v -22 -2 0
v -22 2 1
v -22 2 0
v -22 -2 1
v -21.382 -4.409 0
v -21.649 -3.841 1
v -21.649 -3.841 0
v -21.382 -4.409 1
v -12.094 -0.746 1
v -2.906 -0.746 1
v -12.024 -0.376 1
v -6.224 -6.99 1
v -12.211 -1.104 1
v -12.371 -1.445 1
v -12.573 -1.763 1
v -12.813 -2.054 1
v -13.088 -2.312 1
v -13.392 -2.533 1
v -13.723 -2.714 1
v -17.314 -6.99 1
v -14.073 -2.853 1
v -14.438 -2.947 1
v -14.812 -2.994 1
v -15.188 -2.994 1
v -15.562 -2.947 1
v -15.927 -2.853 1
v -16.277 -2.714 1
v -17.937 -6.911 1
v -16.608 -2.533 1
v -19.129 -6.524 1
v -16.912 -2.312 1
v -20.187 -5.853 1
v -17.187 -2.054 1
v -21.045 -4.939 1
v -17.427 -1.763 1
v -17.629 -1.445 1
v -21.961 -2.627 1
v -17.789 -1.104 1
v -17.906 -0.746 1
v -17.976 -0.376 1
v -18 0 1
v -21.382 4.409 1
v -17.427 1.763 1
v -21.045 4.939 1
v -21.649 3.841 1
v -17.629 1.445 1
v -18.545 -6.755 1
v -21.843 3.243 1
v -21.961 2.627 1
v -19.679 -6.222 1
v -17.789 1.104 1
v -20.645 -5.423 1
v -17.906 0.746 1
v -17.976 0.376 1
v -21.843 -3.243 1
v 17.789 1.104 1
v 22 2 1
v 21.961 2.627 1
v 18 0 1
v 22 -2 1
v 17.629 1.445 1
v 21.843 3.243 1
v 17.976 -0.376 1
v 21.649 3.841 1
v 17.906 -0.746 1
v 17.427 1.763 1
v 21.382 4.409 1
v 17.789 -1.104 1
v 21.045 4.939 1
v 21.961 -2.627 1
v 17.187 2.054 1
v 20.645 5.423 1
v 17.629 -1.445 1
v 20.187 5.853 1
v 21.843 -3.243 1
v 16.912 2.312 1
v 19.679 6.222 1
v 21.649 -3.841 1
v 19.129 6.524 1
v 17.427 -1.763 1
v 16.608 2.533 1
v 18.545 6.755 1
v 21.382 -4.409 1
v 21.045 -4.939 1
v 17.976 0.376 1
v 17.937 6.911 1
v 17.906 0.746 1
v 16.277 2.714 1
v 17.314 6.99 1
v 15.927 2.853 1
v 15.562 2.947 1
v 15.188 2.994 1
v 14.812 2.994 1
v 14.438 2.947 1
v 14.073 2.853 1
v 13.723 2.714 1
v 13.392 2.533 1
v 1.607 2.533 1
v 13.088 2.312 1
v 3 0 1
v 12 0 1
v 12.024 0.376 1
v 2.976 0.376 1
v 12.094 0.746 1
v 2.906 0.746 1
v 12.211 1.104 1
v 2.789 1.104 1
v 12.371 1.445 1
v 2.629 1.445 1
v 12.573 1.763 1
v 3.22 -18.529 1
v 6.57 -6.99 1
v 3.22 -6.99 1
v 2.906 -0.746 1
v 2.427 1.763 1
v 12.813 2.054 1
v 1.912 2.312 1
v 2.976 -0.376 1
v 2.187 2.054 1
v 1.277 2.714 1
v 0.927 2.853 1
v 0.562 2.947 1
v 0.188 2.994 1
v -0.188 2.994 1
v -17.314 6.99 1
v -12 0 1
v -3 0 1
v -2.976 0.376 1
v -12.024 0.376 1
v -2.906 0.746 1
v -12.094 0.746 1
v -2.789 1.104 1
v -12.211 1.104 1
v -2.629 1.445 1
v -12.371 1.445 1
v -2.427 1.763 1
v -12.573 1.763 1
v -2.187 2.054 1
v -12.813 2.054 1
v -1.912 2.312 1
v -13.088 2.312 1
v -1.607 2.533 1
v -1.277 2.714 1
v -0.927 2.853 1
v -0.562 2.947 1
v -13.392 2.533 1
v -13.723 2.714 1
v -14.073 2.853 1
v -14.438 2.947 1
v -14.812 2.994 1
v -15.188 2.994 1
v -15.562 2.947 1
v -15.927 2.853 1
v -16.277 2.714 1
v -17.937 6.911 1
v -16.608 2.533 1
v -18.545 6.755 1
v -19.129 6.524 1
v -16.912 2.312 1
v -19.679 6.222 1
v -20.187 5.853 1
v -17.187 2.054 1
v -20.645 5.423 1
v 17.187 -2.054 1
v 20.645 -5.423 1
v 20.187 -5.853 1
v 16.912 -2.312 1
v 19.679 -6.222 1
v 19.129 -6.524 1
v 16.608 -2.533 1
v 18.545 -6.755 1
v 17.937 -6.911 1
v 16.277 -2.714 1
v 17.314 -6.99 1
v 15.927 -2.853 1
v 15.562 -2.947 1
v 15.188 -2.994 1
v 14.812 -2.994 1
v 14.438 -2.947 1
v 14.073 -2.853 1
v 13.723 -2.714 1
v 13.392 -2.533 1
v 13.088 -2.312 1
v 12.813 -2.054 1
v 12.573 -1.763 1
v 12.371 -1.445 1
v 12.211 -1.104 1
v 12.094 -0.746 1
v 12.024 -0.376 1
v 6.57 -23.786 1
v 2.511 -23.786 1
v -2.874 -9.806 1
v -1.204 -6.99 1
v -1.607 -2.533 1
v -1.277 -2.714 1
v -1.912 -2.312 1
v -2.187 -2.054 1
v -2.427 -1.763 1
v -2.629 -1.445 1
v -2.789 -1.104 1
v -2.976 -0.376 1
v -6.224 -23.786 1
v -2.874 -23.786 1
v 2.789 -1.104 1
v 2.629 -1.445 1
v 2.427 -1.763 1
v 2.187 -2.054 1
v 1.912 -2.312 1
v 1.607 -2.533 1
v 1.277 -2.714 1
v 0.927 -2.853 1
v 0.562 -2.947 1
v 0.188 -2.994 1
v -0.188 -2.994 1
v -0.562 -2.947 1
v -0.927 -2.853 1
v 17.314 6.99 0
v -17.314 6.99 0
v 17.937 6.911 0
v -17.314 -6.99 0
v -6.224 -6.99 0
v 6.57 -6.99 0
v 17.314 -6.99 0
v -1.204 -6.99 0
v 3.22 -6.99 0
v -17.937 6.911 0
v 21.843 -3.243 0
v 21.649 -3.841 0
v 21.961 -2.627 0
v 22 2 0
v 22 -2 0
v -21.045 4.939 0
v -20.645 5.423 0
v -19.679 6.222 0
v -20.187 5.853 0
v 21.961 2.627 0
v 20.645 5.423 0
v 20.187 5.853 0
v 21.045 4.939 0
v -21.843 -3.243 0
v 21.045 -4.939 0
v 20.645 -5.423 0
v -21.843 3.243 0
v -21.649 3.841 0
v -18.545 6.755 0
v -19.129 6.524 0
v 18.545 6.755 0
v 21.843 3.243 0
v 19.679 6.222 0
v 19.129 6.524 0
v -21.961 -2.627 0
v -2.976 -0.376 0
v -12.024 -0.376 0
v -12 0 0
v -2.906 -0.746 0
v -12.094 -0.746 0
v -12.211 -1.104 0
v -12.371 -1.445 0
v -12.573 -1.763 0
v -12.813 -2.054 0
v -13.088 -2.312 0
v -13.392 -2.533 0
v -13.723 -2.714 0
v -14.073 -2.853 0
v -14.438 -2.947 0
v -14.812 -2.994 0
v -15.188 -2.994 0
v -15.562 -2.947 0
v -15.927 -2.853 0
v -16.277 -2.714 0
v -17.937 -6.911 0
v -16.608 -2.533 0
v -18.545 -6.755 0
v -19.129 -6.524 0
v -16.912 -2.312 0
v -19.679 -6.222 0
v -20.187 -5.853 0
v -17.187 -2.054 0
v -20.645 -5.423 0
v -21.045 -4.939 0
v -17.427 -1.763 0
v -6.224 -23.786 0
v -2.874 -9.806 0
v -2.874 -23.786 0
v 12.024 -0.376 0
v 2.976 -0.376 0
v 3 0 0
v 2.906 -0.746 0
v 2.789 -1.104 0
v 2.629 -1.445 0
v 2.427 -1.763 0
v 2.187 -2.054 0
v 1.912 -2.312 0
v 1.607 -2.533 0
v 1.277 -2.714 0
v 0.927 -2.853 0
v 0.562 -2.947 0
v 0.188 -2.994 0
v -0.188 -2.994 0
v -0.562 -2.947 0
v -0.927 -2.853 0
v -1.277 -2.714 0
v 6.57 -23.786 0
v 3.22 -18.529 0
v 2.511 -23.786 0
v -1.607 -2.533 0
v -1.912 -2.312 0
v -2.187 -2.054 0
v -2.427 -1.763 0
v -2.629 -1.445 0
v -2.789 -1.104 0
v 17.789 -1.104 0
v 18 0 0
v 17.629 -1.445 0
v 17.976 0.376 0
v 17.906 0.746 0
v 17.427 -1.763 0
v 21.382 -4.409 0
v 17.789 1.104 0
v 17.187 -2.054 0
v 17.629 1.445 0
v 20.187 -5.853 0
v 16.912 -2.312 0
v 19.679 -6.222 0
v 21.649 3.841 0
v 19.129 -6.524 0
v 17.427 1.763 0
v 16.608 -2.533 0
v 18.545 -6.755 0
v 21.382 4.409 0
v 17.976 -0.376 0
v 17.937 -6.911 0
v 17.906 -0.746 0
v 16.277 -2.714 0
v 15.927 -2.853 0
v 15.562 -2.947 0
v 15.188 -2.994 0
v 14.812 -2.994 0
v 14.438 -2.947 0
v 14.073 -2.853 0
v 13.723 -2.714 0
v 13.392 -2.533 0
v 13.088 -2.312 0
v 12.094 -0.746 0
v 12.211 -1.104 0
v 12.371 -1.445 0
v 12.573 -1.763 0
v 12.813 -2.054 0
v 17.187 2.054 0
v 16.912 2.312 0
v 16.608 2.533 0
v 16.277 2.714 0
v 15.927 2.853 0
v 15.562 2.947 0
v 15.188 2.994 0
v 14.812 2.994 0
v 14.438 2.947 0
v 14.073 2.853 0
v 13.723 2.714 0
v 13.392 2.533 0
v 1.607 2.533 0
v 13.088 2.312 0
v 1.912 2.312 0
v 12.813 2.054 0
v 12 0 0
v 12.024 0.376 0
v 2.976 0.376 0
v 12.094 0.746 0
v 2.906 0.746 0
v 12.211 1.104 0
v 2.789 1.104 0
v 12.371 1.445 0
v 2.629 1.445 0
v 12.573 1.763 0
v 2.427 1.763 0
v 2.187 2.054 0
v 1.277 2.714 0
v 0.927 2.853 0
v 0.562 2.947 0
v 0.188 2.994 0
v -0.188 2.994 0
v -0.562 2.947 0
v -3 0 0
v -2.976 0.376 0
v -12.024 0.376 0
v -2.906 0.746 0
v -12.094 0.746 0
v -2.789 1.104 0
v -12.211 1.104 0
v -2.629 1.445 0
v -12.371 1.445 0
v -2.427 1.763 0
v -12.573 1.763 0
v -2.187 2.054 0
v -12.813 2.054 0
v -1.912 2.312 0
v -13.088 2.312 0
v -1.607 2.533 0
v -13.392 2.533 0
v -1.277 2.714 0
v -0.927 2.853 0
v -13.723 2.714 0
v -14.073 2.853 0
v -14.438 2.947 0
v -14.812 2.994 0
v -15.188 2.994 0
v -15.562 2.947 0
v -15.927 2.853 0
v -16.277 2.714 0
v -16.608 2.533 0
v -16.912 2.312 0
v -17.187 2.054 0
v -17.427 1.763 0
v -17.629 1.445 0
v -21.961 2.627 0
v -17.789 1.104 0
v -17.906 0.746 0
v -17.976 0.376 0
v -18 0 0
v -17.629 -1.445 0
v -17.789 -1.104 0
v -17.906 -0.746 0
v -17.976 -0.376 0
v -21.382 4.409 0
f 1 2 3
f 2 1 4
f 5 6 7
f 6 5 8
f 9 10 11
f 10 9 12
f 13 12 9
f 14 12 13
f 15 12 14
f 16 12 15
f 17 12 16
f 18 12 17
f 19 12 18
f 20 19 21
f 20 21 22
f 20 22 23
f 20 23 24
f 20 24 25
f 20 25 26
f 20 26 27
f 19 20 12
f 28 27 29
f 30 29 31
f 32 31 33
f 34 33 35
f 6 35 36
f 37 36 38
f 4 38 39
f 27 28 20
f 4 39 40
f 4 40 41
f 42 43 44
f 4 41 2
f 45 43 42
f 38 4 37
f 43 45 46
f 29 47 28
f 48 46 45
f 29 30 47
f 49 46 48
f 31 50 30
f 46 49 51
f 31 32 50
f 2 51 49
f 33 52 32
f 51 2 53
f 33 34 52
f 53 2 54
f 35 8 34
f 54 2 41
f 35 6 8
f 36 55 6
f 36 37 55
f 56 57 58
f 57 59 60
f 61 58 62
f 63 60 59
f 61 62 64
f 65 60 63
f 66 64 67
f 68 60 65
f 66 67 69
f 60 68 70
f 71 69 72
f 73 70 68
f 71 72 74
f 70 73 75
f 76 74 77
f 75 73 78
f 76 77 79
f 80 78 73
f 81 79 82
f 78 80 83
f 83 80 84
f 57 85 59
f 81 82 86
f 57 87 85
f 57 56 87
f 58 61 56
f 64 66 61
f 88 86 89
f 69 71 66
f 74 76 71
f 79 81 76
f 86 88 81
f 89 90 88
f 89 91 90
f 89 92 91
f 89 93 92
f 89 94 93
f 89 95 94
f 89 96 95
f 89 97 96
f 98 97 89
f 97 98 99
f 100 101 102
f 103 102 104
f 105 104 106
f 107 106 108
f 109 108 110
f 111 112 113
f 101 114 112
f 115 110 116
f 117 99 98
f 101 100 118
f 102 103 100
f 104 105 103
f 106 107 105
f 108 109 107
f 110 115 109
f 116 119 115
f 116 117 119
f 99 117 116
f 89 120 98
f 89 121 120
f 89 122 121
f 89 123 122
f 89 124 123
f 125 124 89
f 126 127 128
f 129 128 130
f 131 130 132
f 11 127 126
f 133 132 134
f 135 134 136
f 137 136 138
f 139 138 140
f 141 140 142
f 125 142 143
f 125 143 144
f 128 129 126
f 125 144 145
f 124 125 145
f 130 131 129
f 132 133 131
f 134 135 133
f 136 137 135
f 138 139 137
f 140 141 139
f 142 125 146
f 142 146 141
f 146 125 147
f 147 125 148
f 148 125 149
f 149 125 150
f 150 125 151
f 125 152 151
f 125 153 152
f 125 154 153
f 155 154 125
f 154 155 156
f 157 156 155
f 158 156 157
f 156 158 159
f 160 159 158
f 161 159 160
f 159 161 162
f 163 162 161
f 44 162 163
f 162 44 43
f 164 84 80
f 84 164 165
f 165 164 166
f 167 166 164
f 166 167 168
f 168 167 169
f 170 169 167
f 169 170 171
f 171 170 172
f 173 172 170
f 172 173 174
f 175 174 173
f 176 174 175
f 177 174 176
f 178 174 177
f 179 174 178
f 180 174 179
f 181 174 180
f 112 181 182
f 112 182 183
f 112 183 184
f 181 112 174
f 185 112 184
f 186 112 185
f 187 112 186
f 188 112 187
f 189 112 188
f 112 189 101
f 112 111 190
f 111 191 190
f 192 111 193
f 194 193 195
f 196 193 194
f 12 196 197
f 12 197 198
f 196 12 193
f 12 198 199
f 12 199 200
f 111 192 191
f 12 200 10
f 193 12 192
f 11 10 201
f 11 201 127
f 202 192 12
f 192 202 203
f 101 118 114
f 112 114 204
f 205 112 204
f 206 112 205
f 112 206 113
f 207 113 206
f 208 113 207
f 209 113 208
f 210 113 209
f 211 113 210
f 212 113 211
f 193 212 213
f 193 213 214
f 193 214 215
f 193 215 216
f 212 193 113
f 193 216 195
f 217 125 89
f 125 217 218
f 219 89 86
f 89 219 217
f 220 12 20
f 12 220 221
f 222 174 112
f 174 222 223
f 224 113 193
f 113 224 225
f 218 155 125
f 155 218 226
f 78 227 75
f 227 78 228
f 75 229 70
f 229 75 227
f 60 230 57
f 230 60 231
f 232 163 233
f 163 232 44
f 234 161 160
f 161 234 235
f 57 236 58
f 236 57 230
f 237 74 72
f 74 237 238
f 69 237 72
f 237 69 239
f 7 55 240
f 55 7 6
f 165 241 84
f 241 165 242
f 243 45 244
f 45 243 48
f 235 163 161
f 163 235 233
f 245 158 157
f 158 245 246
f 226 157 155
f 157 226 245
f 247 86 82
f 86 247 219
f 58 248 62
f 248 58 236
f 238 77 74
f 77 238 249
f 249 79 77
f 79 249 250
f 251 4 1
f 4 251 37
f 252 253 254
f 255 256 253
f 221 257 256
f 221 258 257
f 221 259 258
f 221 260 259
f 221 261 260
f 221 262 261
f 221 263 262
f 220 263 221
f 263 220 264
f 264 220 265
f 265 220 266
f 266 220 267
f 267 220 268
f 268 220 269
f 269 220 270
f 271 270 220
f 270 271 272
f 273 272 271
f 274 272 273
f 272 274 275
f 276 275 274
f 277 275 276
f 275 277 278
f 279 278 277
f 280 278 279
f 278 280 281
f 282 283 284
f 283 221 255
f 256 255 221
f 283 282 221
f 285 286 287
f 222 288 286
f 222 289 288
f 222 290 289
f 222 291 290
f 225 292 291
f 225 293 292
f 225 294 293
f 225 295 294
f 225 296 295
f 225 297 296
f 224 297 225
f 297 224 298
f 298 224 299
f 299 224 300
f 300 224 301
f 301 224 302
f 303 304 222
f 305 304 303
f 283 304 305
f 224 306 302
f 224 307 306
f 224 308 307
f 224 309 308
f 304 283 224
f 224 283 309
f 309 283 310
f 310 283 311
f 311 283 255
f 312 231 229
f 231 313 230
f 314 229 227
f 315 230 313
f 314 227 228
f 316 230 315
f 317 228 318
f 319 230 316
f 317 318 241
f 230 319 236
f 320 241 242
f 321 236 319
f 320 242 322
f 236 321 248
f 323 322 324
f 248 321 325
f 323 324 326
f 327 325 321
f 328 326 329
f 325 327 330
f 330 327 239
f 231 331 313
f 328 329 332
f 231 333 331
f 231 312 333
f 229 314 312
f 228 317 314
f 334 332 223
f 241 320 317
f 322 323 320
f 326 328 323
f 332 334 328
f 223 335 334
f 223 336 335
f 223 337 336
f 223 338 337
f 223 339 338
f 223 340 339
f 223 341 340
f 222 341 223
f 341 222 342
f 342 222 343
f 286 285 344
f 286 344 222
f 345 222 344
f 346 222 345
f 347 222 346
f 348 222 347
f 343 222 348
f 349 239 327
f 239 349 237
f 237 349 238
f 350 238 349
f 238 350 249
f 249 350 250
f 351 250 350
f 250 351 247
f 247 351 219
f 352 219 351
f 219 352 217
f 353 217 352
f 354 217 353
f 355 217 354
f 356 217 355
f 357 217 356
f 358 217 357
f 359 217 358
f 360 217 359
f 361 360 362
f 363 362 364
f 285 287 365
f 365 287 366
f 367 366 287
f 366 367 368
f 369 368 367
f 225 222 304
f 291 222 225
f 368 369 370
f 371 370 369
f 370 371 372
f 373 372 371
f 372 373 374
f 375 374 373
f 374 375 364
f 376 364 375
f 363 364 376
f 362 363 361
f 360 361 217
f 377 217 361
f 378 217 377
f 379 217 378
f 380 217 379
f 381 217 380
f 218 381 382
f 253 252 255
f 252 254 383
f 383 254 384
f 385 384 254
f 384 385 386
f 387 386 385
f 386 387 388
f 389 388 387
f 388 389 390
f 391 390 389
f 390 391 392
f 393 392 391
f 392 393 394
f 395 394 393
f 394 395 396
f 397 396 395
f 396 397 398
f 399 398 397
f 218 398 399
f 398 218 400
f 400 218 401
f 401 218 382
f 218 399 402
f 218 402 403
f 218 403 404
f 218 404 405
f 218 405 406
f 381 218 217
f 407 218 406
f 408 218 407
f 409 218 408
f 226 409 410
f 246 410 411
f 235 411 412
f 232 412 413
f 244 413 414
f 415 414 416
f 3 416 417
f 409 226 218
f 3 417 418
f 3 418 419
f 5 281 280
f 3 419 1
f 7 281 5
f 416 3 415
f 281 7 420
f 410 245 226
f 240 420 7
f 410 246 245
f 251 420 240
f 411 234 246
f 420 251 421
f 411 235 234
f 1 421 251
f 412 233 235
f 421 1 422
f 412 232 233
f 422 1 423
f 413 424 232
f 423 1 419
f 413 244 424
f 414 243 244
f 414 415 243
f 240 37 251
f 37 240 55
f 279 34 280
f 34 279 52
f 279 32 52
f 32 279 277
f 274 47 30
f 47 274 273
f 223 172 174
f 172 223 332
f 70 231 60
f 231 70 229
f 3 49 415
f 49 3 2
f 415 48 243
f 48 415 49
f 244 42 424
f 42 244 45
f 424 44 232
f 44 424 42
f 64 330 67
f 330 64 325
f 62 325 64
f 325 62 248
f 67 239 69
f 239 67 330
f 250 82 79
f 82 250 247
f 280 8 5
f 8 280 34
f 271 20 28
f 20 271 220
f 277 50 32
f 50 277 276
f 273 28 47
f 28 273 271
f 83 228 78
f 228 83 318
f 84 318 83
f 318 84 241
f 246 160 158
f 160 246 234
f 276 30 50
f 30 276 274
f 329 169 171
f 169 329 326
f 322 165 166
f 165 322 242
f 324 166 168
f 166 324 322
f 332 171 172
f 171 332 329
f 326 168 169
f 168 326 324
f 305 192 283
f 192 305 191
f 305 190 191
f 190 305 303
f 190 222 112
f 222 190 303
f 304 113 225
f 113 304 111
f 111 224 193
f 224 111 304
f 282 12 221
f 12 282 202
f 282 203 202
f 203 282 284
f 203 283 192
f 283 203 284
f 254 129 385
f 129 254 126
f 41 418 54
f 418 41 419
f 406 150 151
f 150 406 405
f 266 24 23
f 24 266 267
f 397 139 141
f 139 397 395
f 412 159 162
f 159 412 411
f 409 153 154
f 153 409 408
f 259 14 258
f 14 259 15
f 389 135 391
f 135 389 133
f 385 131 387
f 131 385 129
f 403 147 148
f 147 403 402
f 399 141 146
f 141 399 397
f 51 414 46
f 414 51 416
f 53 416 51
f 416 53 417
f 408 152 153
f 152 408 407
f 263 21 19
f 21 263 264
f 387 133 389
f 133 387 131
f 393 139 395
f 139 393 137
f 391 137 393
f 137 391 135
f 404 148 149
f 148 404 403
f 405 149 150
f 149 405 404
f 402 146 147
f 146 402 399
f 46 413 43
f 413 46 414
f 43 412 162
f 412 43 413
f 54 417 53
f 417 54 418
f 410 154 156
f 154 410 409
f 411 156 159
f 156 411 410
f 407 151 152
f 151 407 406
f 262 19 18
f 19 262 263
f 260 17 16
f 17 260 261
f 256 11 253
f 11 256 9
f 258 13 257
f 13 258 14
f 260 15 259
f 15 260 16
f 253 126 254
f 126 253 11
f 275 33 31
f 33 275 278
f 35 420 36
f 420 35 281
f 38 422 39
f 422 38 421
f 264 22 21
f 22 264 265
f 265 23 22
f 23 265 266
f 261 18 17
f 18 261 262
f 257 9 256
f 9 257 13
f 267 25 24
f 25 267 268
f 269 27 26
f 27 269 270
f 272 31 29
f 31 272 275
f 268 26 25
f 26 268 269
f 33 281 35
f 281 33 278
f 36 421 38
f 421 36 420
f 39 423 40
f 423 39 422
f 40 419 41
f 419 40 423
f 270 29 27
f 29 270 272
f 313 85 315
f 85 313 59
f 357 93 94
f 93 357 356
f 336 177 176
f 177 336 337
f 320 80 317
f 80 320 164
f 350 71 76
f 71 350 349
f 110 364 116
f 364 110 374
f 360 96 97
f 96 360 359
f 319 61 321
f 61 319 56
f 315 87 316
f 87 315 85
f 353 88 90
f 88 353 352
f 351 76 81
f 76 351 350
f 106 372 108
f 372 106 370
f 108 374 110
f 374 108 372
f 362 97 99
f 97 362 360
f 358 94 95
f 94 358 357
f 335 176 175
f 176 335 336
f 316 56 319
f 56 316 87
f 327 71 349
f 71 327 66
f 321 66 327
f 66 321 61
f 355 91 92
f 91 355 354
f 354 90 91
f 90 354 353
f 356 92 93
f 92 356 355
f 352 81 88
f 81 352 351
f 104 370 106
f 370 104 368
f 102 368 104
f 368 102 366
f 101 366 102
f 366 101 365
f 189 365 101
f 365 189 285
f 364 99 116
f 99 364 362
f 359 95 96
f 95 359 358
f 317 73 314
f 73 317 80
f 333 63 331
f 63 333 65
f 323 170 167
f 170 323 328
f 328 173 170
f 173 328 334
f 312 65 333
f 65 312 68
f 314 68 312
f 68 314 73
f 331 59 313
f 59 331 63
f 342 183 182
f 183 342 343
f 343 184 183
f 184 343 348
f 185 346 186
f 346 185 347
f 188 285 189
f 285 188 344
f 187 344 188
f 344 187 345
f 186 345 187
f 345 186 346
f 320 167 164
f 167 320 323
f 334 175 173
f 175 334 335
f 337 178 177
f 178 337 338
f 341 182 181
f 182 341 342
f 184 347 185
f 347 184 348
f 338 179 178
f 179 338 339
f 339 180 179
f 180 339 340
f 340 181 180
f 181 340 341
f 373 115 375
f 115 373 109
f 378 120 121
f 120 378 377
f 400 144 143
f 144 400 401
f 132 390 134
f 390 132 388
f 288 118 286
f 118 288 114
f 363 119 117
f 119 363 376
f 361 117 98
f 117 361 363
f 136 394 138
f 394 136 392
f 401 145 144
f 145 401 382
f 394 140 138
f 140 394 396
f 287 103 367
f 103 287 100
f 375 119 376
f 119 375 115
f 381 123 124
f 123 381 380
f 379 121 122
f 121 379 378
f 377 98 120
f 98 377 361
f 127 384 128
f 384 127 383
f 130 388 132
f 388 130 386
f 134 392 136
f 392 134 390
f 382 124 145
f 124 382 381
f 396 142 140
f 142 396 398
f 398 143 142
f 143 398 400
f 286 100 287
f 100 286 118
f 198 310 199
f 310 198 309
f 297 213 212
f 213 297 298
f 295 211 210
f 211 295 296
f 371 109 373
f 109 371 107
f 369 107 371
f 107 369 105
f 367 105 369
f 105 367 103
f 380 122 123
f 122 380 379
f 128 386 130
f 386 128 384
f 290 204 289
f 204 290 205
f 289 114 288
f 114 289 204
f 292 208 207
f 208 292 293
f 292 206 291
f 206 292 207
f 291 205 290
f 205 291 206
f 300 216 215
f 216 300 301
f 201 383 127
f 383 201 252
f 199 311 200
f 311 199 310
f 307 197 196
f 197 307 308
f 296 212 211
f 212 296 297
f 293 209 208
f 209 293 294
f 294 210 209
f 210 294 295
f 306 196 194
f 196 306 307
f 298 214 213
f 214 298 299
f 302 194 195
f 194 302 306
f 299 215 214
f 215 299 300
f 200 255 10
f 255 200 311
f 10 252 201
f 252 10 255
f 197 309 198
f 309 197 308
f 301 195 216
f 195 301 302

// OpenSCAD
$fn = 50;


difference() {
	union() {
		translate(v = [0, 0, 0]) {
			rotate(a = [0, 0, 0]) {
				hull() {
					translate(v = [-17.0000000000, 2.0000000000, 0]) {
						rotate(a = [0, 0, 0]) {
							translate(v = [0, 0, 0]) {
								rotate(a = [0, 0, 0]) {
									cylinder(h = 1, r = 5);
								}
							}
						}
					}
					translate(v = [17.0000000000, 2.0000000000, 0]) {
						rotate(a = [0, 0, 0]) {
							translate(v = [0, 0, 0]) {
								rotate(a = [0, 0, 0]) {
									cylinder(h = 1, r = 5);
								}
							}
						}
					}
					translate(v = [-17.0000000000, -2.0000000000, 0]) {
						rotate(a = [0, 0, 0]) {
							translate(v = [0, 0, 0]) {
								rotate(a = [0, 0, 0]) {
									cylinder(h = 1, r = 5);
								}
							}
						}
					}
					translate(v = [17.0000000000, -2.0000000000, 0]) {
						rotate(a = [0, 0, 0]) {
							translate(v = [0, 0, 0]) {
								rotate(a = [0, 0, 0]) {
									cylinder(h = 1, r = 5);
								}
							}
						}
					}
				}
			}
		}
		translate(v = [0, -5, 0]) {
			rotate(a = [0, 0, 0]) {
				linear_extrude(height = 1) {
					text(font = "DejaVu Sans Mono:style=Bold", halign = "center", size = 19.0000000000, text = "N", valign = "top");
				}
			}
		}
	}
	union() {
		translate(v = [-15.0000000000, 0.0000000000, -125.0000000000]) {
			rotate(a = [0, 0, 0]) {
				cylinder(h = 250, r = 3.0000000000);
			}
		}
		translate(v = [15.0000000000, 0.0000000000, -125.0000000000]) {
			rotate(a = [0, 0, 0]) {
				cylinder(h = 250, r = 3.0000000000);
			}
		}
		translate(v = [15.0000000000, 0.0000000000, -125.0000000000]) {
			rotate(a = [0, 0, 0]) {
				cylinder(h = 250, r = 3.0000000000);
			}
		}
		translate(v = [0, 0, -125.0000000000]) {
			rotate(a = [0, 0, 0]) {
				cylinder(h = 250, r = 3.0000000000);
			}
		}
	}
}
